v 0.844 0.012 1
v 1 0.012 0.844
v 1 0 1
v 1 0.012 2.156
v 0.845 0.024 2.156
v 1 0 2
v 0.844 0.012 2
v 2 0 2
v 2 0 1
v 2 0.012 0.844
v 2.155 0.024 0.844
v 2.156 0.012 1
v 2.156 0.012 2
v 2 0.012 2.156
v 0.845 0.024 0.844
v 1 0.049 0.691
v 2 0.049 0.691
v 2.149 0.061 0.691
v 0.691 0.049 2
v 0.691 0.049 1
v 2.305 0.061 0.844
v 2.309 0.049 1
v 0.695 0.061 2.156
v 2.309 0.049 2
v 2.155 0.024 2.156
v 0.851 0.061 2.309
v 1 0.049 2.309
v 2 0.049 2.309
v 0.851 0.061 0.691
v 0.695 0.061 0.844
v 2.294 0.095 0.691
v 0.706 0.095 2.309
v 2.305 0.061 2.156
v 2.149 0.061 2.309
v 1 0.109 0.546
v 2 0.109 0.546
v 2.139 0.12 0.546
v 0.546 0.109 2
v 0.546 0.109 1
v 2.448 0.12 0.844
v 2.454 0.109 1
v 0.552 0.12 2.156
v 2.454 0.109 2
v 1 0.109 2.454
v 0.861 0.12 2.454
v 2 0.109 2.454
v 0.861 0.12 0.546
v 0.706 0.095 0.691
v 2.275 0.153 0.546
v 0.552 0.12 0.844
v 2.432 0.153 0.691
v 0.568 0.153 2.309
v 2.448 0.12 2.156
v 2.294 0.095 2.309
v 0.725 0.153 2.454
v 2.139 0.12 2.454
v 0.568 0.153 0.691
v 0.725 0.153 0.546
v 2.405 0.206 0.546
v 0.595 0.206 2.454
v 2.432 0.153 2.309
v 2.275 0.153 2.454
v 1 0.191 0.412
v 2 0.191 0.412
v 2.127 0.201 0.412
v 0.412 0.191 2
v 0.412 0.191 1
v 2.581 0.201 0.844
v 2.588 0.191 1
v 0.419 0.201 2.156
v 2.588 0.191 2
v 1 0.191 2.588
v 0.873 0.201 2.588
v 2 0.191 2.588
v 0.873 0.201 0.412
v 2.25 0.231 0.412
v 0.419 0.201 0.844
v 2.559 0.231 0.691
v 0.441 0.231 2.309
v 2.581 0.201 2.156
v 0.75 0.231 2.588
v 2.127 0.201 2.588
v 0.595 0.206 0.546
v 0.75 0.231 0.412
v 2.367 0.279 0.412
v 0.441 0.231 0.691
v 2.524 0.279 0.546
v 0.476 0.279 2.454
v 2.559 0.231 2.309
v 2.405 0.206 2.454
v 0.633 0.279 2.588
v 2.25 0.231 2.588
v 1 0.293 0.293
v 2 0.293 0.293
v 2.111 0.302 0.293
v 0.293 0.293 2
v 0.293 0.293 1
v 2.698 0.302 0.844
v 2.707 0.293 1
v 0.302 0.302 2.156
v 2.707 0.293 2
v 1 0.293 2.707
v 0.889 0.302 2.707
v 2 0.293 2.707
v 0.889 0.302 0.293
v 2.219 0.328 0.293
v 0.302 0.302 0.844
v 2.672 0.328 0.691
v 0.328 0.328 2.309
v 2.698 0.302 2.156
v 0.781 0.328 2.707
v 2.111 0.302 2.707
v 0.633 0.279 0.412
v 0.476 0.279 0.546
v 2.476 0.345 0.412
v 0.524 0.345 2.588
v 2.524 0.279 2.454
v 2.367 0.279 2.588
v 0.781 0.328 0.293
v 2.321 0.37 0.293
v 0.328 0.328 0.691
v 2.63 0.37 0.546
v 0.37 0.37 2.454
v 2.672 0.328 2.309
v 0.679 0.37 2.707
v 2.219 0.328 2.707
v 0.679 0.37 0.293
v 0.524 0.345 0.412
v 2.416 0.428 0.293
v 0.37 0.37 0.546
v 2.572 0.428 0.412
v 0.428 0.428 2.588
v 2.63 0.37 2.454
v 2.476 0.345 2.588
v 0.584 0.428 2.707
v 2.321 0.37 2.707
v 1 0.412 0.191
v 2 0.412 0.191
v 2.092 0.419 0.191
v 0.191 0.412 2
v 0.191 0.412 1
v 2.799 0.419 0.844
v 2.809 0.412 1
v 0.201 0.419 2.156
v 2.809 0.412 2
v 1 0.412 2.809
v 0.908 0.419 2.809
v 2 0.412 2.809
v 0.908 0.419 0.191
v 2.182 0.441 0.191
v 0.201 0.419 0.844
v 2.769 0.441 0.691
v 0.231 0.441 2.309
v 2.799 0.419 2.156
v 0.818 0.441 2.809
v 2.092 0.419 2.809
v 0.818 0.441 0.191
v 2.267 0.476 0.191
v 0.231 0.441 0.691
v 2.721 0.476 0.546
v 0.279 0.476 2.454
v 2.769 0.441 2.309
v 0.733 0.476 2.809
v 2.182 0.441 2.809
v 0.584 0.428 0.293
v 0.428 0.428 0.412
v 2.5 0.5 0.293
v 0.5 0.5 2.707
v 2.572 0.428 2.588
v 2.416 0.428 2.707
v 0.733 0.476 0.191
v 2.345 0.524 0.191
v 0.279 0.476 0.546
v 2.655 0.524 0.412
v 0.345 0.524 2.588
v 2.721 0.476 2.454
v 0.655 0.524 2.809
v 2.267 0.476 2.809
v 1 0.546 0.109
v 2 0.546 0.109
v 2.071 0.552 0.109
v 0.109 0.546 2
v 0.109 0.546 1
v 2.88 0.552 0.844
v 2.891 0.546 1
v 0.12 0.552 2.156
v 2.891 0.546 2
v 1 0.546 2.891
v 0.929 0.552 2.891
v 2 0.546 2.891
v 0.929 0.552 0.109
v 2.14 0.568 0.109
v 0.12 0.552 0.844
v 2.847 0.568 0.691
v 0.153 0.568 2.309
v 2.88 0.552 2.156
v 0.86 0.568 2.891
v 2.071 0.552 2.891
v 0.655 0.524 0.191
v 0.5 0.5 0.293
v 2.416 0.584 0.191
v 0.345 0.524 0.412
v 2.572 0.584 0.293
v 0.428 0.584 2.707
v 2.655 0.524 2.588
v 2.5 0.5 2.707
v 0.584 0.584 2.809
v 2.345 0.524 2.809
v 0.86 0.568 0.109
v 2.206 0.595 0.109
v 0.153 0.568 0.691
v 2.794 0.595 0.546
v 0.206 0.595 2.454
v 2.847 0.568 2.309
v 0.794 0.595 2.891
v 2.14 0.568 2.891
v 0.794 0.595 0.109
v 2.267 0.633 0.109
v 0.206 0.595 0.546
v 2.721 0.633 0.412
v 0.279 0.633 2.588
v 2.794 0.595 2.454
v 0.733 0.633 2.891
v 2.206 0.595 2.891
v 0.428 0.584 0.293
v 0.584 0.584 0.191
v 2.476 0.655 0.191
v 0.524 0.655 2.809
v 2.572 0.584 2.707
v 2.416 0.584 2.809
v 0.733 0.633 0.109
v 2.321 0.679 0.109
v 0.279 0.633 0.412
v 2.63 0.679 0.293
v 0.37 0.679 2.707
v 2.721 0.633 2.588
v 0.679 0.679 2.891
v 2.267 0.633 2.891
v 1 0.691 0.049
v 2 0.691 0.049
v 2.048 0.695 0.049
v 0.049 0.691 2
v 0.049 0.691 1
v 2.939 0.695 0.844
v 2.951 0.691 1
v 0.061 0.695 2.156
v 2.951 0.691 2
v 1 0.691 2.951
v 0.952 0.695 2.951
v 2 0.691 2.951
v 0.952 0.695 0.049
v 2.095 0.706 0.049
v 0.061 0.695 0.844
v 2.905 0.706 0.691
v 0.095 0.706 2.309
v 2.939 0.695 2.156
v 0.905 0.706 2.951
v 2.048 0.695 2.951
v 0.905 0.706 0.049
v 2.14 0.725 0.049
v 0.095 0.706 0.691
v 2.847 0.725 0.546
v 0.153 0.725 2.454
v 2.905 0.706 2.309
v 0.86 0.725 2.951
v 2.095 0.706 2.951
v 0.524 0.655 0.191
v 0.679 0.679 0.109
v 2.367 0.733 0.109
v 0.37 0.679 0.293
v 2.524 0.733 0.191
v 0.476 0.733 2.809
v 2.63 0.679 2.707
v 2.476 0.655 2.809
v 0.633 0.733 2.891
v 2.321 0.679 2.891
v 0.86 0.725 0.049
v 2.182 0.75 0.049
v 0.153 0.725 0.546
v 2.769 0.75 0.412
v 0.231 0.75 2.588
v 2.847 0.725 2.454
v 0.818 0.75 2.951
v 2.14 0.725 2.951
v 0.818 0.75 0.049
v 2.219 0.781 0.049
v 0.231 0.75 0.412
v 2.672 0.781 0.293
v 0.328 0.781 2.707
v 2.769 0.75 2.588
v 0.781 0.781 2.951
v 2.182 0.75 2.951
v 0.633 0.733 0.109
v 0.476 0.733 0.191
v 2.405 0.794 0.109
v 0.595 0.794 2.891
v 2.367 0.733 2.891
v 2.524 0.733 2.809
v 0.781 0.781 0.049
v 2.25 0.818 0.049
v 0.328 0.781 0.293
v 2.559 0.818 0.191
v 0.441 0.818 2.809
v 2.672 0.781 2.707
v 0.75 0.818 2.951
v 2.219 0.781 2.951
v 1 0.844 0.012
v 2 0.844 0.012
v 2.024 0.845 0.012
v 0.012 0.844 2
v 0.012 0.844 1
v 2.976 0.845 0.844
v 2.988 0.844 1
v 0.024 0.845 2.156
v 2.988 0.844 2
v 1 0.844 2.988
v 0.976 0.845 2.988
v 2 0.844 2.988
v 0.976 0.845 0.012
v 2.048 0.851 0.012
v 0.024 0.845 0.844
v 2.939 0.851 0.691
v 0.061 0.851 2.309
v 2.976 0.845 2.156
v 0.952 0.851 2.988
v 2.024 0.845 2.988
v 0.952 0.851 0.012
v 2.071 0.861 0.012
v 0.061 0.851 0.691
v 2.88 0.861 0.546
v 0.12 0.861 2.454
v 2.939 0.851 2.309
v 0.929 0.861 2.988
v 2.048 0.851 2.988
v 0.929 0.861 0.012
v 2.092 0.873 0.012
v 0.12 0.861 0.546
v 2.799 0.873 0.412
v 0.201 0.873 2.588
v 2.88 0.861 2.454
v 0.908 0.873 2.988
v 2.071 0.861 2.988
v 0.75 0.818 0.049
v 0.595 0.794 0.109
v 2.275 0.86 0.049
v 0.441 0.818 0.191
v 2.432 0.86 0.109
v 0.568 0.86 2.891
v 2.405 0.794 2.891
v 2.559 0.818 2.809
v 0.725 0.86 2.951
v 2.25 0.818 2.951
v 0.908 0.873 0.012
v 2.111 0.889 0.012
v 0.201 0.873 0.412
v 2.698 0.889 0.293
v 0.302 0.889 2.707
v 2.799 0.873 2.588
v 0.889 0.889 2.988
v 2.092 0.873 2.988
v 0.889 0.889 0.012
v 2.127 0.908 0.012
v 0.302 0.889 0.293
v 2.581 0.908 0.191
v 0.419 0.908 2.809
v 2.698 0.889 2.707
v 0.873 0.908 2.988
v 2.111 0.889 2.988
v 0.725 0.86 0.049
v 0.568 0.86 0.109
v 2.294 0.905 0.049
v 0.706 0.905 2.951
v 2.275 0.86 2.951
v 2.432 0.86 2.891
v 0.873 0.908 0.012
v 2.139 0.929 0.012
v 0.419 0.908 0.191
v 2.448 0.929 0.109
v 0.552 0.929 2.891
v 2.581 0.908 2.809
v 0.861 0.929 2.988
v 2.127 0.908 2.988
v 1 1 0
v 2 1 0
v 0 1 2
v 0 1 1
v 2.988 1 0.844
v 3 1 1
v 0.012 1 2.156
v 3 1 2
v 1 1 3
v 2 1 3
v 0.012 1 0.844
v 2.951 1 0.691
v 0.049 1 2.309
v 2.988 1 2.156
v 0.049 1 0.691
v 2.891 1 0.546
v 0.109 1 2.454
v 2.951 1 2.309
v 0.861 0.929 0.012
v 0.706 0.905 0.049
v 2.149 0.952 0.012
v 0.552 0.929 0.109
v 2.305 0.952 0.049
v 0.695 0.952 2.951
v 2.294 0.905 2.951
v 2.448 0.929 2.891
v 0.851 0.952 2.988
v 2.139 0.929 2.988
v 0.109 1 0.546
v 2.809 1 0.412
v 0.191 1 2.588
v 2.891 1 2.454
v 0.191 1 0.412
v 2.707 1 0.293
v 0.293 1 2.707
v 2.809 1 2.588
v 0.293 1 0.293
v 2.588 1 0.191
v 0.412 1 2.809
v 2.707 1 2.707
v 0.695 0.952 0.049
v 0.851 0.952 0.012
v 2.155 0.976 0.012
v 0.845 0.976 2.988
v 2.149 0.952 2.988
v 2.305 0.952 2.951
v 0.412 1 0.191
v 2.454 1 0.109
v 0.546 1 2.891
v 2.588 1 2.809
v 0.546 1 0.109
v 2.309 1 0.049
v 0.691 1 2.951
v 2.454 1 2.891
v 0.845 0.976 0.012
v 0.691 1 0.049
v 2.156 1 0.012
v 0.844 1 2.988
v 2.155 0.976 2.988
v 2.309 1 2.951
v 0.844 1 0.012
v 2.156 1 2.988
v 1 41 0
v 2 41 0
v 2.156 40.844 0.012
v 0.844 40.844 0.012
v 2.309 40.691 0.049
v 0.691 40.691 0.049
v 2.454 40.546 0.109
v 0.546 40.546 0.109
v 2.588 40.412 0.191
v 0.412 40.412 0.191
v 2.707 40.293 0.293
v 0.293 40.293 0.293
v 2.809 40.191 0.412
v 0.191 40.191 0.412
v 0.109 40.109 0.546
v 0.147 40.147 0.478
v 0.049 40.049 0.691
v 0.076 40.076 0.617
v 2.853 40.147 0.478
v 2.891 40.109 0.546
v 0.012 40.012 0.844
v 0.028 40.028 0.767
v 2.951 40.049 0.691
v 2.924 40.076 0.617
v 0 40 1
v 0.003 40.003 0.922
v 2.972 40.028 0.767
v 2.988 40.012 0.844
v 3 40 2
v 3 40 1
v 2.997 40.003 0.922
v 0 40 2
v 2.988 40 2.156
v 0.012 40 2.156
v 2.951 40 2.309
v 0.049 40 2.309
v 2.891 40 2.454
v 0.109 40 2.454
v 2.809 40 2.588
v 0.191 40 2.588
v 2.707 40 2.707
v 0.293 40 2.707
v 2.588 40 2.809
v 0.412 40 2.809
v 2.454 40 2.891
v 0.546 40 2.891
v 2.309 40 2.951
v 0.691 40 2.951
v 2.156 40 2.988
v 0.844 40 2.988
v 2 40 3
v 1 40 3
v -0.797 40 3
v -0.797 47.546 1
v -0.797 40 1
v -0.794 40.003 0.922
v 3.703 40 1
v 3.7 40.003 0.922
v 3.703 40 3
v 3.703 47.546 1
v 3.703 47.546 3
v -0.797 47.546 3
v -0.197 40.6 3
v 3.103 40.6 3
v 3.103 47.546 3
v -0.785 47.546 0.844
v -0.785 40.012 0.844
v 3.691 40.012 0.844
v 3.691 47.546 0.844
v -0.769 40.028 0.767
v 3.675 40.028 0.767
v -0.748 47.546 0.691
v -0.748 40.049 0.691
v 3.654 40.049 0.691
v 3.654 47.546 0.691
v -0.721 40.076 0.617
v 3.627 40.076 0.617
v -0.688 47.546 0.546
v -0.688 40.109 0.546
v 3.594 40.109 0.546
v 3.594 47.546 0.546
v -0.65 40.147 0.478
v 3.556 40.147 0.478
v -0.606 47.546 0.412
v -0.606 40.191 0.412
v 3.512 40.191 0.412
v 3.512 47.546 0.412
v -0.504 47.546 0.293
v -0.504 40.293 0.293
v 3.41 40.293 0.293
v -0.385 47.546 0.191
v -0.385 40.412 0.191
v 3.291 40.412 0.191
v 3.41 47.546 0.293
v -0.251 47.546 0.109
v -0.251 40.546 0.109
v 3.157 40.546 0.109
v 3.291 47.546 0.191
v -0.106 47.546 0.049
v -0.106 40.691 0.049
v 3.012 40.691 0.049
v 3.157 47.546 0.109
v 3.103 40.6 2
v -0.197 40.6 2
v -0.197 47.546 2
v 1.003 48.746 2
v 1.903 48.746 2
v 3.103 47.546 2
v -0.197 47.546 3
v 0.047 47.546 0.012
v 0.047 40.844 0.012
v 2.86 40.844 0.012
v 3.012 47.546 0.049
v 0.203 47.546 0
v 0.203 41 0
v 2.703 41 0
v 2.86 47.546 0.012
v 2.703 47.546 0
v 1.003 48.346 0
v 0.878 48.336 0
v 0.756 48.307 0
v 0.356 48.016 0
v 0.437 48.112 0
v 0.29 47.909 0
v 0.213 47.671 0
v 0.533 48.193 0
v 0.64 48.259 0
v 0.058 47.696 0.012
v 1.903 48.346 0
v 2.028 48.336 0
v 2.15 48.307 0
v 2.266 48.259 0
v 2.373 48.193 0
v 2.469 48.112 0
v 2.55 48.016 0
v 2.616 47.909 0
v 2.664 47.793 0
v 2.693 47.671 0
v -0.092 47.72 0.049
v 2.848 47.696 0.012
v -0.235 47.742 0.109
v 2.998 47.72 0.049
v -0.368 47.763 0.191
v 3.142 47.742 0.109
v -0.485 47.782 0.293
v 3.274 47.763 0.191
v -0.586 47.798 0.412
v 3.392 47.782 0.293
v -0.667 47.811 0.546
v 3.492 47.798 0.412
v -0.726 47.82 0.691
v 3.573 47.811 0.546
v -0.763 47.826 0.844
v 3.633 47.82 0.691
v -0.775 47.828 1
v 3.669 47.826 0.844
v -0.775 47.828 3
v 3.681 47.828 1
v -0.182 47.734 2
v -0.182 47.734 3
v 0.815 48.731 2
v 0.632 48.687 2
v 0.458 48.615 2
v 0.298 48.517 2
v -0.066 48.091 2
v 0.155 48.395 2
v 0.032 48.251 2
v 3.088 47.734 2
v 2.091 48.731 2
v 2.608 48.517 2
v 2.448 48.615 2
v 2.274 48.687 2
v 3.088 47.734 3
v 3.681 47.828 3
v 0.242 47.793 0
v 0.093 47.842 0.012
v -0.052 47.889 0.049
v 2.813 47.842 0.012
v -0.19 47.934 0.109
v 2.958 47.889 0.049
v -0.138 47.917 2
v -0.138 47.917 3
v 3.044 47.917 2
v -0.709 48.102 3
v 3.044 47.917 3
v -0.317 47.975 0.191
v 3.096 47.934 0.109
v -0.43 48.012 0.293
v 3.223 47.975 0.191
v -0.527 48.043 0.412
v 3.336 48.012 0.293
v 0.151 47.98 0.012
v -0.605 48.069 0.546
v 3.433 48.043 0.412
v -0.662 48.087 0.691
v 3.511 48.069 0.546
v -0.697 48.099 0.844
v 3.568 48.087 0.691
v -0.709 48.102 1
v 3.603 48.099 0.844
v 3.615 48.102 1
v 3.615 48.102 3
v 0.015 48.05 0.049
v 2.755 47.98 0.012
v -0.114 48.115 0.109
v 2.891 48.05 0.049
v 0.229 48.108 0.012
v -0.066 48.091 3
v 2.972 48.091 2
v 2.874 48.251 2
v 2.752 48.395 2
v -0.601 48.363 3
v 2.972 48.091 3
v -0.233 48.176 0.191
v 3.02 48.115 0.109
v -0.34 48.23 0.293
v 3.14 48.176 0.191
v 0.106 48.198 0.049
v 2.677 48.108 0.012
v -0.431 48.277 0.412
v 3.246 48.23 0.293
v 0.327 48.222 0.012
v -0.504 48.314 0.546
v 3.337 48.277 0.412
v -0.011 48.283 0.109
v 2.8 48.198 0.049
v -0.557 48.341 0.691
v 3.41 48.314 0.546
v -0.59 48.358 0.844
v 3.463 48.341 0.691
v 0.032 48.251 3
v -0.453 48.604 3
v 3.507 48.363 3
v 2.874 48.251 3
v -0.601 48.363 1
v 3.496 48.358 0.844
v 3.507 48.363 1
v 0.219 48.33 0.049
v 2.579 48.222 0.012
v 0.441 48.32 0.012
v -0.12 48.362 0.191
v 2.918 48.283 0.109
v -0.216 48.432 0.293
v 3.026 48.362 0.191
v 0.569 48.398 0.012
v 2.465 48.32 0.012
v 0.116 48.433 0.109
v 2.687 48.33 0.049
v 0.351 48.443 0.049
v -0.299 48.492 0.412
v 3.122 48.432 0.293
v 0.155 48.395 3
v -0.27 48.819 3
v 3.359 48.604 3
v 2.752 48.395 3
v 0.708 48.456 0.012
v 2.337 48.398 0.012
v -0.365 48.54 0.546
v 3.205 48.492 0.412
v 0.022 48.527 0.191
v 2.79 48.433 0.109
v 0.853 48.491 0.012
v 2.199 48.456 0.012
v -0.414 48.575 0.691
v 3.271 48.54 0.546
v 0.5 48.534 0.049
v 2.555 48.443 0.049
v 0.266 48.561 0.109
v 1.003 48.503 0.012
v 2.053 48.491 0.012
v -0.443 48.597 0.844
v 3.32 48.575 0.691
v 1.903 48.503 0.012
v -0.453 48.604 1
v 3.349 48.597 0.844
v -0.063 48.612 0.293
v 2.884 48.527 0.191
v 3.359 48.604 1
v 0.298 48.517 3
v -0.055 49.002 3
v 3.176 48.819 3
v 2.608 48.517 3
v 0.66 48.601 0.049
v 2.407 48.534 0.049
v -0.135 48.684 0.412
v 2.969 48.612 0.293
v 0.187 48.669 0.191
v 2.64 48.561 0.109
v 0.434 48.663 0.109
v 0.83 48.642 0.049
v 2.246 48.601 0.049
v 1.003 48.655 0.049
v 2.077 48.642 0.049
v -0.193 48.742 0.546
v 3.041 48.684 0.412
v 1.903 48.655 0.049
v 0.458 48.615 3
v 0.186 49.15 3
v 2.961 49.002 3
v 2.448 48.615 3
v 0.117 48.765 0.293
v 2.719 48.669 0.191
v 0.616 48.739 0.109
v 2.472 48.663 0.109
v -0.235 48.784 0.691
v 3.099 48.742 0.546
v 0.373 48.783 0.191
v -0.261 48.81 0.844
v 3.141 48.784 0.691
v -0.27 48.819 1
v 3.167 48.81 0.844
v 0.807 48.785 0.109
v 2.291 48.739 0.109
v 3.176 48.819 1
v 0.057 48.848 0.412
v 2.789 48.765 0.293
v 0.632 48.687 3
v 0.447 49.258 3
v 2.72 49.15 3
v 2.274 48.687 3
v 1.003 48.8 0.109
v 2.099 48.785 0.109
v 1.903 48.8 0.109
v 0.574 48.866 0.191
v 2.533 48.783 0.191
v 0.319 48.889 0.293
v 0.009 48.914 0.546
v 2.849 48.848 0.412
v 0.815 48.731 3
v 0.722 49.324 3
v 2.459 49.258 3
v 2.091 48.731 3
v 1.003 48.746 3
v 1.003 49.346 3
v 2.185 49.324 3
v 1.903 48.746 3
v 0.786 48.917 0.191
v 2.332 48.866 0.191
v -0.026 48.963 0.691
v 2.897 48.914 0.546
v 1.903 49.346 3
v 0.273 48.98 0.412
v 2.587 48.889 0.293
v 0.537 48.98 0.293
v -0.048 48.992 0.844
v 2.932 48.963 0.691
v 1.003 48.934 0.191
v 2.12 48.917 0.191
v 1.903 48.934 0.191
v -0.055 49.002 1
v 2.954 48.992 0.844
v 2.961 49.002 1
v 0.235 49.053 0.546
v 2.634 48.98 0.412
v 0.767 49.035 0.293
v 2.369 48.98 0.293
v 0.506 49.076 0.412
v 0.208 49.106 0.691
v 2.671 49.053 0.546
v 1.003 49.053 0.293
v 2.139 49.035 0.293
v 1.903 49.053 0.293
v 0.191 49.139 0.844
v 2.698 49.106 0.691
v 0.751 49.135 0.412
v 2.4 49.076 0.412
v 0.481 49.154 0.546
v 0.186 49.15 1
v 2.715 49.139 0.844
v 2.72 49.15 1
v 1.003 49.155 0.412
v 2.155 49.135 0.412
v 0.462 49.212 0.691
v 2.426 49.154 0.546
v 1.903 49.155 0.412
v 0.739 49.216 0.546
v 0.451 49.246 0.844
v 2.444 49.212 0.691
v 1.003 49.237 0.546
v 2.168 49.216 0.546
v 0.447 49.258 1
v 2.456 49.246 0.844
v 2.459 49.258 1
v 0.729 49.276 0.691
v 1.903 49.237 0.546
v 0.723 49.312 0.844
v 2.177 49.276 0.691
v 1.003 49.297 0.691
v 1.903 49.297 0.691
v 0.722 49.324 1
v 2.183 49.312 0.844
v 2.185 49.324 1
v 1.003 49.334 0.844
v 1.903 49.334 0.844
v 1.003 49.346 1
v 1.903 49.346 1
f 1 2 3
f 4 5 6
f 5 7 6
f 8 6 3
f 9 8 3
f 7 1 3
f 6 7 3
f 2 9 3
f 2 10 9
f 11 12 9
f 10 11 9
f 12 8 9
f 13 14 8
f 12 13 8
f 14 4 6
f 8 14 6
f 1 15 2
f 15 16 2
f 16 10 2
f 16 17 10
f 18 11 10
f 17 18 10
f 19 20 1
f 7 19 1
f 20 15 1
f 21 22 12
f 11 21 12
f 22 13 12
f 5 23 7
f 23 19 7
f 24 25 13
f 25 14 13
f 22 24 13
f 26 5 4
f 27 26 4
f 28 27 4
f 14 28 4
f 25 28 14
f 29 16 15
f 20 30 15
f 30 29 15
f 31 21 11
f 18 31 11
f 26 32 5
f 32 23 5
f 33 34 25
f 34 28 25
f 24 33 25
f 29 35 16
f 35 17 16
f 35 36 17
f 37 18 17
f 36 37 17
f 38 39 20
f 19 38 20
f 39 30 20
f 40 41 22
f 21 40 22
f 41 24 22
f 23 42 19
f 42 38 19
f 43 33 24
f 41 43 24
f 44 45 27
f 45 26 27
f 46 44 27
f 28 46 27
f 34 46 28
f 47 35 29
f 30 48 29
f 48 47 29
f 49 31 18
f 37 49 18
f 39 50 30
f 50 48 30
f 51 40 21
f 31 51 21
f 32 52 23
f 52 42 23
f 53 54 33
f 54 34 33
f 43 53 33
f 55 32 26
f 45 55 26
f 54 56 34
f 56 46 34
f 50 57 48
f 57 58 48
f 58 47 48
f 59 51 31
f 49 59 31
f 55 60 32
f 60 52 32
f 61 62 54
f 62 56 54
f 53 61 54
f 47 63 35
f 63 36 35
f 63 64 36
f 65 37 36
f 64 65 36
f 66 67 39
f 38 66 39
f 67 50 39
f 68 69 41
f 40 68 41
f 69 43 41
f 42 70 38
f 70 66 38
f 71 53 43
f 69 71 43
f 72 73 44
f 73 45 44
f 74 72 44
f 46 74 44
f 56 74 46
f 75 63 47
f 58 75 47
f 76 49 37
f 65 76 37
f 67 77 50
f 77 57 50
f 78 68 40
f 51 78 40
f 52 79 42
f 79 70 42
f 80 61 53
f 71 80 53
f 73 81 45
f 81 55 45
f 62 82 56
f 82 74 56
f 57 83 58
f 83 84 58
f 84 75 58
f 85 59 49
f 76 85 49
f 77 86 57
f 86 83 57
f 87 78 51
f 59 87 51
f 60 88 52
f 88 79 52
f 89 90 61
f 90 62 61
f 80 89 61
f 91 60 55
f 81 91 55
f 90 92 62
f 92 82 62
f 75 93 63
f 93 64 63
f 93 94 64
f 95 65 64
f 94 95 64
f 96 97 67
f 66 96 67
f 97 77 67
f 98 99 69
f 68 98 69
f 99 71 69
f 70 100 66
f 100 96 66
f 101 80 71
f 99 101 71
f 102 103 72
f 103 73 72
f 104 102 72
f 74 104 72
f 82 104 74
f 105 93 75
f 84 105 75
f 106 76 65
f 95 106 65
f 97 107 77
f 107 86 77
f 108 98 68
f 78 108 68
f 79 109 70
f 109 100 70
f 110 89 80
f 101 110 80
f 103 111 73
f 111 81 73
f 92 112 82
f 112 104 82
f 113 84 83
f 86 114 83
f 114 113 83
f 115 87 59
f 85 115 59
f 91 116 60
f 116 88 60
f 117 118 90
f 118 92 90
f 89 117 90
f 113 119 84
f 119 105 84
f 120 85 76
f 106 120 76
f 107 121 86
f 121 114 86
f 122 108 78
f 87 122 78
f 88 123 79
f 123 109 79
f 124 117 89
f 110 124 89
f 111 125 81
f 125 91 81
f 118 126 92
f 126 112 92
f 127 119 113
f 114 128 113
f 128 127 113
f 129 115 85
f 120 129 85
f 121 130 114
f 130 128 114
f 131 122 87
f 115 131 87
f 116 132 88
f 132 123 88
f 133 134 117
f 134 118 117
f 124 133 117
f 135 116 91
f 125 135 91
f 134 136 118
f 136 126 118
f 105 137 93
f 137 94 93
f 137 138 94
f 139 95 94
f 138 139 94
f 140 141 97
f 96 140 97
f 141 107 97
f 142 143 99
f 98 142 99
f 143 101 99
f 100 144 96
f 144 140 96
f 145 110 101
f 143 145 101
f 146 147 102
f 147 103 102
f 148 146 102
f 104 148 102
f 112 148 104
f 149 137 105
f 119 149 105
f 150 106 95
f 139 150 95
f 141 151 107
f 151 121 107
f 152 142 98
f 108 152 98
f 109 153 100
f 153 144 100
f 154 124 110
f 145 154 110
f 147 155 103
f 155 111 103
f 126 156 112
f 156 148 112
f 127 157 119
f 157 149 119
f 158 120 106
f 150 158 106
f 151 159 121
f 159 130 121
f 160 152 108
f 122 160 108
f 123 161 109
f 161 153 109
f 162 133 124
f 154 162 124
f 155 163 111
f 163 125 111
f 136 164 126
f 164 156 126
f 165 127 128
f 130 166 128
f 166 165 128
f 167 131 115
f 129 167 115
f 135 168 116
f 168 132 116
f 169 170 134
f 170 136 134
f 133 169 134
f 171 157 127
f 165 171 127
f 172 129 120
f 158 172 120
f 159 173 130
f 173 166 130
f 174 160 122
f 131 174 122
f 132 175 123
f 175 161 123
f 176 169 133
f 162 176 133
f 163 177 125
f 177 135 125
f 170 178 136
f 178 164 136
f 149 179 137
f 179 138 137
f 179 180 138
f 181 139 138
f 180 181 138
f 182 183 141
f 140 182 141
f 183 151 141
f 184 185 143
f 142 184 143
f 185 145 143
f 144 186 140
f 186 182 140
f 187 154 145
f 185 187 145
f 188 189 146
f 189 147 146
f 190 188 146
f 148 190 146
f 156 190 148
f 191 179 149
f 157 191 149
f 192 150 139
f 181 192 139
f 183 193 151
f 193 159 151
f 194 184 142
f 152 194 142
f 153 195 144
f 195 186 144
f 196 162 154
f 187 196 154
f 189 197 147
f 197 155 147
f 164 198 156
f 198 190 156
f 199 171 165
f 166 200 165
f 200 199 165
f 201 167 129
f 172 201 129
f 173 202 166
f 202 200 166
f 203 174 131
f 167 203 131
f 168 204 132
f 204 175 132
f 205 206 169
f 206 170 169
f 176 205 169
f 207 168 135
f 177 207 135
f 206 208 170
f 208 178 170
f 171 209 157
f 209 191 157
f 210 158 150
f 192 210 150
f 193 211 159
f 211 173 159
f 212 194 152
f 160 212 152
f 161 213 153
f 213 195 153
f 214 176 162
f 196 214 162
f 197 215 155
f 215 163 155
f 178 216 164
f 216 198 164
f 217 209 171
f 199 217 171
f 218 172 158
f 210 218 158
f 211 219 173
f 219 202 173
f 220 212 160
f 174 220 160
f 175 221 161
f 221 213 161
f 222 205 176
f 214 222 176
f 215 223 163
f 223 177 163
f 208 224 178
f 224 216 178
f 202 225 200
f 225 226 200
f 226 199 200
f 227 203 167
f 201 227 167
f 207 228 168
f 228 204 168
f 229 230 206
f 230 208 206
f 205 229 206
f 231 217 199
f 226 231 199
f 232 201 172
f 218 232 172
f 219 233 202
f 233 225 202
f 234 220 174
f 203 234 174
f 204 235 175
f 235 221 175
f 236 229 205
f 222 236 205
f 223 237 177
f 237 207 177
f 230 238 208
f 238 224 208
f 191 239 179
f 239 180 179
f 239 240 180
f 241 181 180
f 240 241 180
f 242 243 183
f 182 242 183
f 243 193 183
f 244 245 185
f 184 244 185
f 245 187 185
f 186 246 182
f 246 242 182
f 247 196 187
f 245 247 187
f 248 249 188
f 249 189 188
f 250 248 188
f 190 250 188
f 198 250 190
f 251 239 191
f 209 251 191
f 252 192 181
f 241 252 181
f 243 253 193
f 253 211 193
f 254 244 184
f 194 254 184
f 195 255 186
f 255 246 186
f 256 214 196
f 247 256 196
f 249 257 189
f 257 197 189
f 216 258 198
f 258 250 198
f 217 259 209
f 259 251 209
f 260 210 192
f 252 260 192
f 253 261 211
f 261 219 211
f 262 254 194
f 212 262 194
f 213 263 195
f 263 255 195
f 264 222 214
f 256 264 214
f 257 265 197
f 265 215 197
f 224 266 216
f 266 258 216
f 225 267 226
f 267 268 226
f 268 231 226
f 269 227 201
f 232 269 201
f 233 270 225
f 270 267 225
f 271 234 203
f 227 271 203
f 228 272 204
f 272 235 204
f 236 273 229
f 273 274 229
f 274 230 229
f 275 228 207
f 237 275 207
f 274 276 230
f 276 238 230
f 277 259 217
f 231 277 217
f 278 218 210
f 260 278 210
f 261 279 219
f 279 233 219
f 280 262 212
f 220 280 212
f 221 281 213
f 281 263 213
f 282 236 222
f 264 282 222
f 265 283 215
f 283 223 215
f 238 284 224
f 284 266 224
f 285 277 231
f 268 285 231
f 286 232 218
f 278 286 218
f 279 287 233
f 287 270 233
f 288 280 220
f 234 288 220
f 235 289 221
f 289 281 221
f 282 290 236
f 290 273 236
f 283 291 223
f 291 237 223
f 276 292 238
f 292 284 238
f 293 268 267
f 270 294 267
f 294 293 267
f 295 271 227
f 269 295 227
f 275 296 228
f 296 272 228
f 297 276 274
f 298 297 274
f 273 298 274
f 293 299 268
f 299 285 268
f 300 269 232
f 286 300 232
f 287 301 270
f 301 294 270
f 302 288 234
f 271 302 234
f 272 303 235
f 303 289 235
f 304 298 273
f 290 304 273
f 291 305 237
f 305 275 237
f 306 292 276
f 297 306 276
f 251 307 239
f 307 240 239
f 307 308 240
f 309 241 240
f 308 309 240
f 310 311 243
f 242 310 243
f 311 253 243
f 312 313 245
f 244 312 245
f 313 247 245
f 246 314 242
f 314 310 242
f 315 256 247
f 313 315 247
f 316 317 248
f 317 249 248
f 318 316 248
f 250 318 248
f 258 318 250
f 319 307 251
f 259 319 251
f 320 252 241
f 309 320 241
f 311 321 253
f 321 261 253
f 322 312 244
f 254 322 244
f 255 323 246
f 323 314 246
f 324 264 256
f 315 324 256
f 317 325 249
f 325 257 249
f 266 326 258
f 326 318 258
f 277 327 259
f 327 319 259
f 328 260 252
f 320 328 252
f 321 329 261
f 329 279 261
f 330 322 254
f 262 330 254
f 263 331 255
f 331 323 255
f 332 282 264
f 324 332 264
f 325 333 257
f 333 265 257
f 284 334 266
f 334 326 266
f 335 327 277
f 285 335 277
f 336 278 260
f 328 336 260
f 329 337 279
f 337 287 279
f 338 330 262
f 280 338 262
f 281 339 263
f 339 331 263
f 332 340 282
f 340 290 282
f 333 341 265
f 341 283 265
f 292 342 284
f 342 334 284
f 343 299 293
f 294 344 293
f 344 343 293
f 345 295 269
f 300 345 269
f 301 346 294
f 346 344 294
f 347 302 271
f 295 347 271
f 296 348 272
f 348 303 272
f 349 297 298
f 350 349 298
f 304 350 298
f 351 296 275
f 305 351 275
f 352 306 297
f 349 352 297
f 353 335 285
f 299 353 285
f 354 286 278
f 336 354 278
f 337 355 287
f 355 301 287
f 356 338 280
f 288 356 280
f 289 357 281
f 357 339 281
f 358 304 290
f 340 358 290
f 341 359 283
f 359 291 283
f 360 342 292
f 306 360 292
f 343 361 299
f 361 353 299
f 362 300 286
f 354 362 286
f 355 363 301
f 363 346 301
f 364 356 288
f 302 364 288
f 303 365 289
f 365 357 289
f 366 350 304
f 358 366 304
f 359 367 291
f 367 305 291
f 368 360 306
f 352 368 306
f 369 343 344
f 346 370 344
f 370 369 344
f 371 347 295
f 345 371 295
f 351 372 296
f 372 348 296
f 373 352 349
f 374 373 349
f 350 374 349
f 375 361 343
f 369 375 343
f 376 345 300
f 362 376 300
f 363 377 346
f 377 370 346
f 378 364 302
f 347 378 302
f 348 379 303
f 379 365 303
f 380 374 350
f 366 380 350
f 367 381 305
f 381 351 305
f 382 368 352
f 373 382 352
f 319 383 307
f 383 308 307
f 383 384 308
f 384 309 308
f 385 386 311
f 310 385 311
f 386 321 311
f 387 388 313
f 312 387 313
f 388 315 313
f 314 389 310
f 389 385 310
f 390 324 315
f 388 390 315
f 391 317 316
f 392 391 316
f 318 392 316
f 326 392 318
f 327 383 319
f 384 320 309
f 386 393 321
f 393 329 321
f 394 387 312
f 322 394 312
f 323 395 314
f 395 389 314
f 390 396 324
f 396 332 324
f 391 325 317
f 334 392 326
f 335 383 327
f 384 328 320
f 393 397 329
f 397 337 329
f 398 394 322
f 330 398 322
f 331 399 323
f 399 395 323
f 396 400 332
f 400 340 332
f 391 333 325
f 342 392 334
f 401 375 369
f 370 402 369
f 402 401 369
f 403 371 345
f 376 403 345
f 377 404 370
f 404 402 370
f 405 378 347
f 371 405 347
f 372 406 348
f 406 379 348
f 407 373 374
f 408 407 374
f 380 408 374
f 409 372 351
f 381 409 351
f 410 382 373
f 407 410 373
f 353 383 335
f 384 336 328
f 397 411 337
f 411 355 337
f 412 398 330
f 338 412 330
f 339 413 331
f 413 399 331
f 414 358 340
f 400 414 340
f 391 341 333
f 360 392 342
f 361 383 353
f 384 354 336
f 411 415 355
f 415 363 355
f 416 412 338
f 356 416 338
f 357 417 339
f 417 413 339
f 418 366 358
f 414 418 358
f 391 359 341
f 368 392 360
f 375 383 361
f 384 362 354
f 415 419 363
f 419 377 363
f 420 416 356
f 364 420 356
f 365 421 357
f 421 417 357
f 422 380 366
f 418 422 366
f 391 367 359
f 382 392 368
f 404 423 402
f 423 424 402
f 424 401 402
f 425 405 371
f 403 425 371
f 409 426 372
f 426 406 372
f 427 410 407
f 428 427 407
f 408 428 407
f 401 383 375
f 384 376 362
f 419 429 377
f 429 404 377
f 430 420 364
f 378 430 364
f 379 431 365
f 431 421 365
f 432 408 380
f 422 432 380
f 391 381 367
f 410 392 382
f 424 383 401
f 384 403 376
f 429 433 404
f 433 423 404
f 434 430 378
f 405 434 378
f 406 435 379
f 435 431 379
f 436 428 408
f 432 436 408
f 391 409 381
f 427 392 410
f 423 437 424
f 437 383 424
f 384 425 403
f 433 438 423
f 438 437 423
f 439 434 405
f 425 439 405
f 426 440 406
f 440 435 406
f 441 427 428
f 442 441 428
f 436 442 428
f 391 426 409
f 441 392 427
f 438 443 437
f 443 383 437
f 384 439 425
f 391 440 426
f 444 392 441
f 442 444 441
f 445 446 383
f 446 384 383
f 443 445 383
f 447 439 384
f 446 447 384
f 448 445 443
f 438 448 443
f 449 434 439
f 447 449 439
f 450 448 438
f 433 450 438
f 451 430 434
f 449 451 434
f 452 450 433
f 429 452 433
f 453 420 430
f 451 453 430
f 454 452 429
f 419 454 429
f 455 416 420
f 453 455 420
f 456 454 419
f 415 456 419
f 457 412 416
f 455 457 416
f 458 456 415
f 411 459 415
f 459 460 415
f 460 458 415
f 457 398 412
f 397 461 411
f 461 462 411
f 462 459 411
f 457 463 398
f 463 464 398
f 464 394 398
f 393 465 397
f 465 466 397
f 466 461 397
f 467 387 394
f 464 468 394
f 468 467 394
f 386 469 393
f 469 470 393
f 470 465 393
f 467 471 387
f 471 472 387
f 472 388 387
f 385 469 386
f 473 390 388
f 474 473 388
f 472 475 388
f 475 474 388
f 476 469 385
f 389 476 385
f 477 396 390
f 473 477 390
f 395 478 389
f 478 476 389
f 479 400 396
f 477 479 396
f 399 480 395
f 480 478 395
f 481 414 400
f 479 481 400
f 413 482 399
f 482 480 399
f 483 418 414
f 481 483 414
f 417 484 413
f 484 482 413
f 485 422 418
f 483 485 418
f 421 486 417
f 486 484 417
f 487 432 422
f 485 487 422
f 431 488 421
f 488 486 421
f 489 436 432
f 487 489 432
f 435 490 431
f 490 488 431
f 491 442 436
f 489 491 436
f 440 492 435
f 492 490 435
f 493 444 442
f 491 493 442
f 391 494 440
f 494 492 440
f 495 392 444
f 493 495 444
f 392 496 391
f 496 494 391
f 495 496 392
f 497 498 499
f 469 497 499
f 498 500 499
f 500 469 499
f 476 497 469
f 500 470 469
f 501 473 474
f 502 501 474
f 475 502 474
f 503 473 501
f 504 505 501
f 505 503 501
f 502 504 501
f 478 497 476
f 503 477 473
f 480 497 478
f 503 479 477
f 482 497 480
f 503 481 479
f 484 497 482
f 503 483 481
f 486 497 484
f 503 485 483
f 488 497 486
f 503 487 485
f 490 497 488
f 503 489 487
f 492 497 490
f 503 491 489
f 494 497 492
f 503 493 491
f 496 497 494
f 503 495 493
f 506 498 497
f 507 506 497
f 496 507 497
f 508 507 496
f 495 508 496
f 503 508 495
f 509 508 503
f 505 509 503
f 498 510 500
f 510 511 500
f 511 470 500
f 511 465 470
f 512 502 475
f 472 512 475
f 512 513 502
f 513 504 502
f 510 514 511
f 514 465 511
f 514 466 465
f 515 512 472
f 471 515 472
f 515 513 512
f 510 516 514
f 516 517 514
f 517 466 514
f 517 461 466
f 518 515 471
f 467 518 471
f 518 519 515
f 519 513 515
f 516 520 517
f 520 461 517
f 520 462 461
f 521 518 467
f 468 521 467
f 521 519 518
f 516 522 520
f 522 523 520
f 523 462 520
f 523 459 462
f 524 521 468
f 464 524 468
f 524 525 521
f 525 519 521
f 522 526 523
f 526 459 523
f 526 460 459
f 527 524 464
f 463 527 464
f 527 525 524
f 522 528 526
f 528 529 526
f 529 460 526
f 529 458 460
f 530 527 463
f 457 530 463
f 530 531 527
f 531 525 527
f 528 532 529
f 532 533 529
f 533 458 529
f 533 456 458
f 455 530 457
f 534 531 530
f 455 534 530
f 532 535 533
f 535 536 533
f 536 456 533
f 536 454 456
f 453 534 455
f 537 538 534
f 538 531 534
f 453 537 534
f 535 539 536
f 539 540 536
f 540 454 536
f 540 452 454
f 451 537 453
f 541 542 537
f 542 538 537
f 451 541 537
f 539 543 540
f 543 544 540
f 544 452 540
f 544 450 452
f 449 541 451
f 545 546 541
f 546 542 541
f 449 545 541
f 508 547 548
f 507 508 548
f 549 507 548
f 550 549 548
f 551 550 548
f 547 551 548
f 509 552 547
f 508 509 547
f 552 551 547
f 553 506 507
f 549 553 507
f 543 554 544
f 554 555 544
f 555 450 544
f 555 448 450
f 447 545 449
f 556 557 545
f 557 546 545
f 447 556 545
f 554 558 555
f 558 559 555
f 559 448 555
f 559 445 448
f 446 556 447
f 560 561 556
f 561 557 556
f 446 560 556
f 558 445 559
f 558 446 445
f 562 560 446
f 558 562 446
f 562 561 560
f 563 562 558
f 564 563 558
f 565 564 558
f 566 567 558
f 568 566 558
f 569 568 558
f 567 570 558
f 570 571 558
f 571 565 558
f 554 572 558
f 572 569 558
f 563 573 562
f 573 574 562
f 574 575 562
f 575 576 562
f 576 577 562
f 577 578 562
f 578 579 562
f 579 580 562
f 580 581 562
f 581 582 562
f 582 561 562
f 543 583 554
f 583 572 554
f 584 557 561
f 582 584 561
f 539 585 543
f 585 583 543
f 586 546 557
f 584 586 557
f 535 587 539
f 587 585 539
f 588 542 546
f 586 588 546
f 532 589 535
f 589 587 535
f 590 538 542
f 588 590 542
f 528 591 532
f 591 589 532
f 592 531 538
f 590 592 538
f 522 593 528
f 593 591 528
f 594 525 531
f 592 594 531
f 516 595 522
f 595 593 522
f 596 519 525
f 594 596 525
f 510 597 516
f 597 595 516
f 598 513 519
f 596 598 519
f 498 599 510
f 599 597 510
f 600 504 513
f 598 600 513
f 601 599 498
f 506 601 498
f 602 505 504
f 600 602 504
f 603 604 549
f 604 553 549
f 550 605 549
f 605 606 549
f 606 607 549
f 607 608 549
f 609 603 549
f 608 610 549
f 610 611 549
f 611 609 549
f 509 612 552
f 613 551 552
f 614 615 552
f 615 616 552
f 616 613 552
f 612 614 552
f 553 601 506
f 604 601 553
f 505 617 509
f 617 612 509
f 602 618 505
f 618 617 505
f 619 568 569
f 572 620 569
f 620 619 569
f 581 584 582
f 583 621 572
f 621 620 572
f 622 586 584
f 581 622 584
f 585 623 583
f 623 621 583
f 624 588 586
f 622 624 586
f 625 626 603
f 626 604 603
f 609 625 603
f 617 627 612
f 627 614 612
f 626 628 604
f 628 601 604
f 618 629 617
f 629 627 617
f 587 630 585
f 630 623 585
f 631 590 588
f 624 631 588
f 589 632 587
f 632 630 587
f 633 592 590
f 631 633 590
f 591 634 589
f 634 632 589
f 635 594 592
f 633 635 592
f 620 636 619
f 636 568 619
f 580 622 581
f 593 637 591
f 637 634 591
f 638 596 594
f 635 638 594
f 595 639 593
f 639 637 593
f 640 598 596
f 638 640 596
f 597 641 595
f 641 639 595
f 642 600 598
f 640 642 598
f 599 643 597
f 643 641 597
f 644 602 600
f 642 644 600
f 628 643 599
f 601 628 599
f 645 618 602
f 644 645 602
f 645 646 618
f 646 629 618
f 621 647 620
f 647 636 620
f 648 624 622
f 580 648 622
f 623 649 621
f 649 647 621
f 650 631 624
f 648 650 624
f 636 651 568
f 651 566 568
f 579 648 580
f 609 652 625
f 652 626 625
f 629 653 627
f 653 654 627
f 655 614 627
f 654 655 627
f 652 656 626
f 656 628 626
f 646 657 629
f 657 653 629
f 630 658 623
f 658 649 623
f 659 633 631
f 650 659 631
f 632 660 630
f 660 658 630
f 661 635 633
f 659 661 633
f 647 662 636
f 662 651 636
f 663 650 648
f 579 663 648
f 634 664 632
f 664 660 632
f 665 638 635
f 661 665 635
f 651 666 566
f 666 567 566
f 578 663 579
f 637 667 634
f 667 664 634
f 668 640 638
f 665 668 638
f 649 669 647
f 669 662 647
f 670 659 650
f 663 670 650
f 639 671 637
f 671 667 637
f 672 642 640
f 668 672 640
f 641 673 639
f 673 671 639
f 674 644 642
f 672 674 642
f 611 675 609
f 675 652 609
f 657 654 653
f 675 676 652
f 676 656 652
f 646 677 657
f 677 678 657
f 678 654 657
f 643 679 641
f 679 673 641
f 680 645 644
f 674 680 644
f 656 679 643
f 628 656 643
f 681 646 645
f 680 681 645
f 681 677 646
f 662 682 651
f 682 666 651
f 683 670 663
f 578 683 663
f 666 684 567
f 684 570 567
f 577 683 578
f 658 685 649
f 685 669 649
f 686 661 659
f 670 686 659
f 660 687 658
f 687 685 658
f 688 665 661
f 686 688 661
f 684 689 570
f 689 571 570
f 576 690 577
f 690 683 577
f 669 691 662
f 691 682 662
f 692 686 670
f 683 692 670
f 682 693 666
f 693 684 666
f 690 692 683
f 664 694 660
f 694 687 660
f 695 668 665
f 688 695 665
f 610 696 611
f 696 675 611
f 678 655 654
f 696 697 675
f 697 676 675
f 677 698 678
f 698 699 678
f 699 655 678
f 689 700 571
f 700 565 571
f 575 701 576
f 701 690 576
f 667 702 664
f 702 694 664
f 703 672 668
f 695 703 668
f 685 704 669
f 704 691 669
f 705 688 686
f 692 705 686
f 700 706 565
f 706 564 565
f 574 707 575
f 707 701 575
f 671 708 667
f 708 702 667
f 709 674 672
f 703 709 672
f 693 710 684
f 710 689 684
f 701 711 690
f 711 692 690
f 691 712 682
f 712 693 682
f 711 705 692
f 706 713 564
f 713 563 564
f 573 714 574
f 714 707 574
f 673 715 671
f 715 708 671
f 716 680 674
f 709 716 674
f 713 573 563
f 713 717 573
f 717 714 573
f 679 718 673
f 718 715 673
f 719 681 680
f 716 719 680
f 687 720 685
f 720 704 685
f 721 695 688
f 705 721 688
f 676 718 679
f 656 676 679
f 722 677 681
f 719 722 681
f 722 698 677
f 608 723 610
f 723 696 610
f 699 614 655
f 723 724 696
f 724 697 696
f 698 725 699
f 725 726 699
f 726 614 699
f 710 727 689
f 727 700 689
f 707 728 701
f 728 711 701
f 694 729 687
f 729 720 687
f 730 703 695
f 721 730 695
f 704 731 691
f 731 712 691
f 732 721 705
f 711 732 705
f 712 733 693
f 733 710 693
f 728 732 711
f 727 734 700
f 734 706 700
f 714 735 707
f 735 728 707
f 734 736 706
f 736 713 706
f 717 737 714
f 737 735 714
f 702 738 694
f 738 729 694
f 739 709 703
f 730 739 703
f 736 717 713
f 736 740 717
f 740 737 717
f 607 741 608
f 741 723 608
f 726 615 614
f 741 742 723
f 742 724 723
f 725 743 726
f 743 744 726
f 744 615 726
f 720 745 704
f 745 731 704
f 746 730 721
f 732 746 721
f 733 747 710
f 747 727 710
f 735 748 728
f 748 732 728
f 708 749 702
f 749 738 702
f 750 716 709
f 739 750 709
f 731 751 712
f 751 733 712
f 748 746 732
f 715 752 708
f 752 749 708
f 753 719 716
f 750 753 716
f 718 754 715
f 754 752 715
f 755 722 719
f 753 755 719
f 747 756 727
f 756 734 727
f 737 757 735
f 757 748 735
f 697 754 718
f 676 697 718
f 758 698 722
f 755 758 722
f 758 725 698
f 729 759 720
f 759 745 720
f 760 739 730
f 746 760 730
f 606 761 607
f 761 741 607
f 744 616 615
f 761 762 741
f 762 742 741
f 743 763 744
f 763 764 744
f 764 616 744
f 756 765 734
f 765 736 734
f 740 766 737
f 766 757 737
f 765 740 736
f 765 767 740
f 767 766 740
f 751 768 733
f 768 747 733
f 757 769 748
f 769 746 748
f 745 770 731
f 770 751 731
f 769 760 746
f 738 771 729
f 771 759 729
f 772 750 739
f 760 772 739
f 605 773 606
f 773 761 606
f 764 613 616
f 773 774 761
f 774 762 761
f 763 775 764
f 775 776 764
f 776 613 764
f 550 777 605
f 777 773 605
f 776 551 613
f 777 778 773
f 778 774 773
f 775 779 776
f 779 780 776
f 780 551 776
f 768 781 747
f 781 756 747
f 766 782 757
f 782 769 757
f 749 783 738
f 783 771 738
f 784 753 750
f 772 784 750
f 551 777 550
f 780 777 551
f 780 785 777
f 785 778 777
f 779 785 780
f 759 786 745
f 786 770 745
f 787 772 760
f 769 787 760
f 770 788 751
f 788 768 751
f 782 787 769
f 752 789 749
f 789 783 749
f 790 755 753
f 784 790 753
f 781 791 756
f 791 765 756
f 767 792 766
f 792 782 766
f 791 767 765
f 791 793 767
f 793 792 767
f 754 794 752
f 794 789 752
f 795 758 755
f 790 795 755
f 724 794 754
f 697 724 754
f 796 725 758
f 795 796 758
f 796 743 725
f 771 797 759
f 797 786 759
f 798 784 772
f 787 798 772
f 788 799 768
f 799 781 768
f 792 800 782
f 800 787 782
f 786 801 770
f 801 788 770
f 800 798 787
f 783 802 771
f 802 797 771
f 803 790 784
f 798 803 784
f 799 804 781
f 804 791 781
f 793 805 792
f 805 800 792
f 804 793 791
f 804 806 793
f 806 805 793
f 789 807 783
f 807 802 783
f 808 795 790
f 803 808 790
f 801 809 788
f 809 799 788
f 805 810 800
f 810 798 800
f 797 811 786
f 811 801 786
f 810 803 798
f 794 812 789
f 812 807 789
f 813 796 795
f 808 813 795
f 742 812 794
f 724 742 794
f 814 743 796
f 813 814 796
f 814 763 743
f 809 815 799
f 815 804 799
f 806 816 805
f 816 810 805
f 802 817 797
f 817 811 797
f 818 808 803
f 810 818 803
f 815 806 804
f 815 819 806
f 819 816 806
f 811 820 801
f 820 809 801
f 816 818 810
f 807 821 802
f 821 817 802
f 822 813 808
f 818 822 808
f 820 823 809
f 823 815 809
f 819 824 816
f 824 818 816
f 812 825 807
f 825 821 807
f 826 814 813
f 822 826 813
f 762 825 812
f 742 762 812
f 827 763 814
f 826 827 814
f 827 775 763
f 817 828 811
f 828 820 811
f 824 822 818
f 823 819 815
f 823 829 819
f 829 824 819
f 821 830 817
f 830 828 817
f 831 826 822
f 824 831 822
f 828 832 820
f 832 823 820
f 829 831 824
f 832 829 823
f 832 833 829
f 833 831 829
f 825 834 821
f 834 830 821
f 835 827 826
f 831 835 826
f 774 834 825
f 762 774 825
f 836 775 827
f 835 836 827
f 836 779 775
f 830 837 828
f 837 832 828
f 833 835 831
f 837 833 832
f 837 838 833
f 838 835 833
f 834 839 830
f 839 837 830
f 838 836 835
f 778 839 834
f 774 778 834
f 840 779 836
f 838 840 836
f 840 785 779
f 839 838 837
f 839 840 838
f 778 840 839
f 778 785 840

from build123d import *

# Parameters (mm, degrees)
EXTRUDE_1_DEPTH     = 3
CUT_EXTRUDE_1_DEPTH = 1
FILLET_3_R          = 1


with BuildPart() as part:
    # 草图1 → 凸台-拉伸1 (new body)
    with BuildSketch(Plane.XY):
        with BuildLine():
            Line((3, 40), (3.703089902, 40))
            Line((3.703089902, 40), (3.703089902, 47.546153846))
            ThreePointArc((3.703089902, 47.546153846), (3.175882108, 48.818946052), (1.903089902, 49.346153846))
            Line((1.903089902, 49.346153846), (1.003089902, 49.346153846))
            ThreePointArc((1.003089902, 49.346153846), (-0.269702304, 48.818946052), (-0.796910098, 47.546153846))
            Line((-0.796910098, 47.546153846), (-0.796910098, 40))
            Line((-0.796910098, 40), (0, 40))
            Line((0, 40), (0, 0))
            Line((0, 0), (3, 0))
            Line((3, 0), (3, 40))
        make_face()
    extrude(amount=EXTRUDE_1_DEPTH)

    # 草图2 → 切除-拉伸1 (cut)
    with BuildSketch(Plane.XY.offset(3)):
        with BuildLine():
            Line((3.103089902, 40.6), (3.103089902, 47.546153846))
            ThreePointArc((3.103089902, 47.546153846), (2.751618039, 48.394681984), (1.903089902, 48.746153846))
            Line((1.903089902, 48.746153846), (1.003089902, 48.746153846))
            ThreePointArc((1.003089902, 48.746153846), (0.154561764, 48.394681984), (-0.196910098, 47.546153846))
            Line((-0.196910098, 47.546153846), (-0.196910098, 40.6))
            Line((-0.196910098, 40.6), (3.103089902, 40.6))
        make_face()
    extrude(amount=-CUT_EXTRUDE_1_DEPTH, mode=Mode.SUBTRACT)

    # 圆角3
    fillet_3_edges = [part.edges().sort_by_distance(p)[0] for p in [
        (3, 20, 3),
        (-0.269702304, 48.818946052, 0),
        (1.453089902, 49.346153846, 0),
        (3.175882108, 48.818946052, 0),
        (3.703089902, 43.773076923, 0),
        (3.351544951, 40, 0),
        (3, 20, 0),
        (1.5, 0, 0),
        (0, 20, 0),
        (3, 0, 1.5),
        (0, 0, 1.5),
        (0, 20, 3),
        (1.5, 0, 3),
        (-0.398455049, 40, 0),
        (-0.796910098, 43.773076923, 0),
    ]]
    fillet(fillet_3_edges, radius=FILLET_3_R)


solid = part.part
